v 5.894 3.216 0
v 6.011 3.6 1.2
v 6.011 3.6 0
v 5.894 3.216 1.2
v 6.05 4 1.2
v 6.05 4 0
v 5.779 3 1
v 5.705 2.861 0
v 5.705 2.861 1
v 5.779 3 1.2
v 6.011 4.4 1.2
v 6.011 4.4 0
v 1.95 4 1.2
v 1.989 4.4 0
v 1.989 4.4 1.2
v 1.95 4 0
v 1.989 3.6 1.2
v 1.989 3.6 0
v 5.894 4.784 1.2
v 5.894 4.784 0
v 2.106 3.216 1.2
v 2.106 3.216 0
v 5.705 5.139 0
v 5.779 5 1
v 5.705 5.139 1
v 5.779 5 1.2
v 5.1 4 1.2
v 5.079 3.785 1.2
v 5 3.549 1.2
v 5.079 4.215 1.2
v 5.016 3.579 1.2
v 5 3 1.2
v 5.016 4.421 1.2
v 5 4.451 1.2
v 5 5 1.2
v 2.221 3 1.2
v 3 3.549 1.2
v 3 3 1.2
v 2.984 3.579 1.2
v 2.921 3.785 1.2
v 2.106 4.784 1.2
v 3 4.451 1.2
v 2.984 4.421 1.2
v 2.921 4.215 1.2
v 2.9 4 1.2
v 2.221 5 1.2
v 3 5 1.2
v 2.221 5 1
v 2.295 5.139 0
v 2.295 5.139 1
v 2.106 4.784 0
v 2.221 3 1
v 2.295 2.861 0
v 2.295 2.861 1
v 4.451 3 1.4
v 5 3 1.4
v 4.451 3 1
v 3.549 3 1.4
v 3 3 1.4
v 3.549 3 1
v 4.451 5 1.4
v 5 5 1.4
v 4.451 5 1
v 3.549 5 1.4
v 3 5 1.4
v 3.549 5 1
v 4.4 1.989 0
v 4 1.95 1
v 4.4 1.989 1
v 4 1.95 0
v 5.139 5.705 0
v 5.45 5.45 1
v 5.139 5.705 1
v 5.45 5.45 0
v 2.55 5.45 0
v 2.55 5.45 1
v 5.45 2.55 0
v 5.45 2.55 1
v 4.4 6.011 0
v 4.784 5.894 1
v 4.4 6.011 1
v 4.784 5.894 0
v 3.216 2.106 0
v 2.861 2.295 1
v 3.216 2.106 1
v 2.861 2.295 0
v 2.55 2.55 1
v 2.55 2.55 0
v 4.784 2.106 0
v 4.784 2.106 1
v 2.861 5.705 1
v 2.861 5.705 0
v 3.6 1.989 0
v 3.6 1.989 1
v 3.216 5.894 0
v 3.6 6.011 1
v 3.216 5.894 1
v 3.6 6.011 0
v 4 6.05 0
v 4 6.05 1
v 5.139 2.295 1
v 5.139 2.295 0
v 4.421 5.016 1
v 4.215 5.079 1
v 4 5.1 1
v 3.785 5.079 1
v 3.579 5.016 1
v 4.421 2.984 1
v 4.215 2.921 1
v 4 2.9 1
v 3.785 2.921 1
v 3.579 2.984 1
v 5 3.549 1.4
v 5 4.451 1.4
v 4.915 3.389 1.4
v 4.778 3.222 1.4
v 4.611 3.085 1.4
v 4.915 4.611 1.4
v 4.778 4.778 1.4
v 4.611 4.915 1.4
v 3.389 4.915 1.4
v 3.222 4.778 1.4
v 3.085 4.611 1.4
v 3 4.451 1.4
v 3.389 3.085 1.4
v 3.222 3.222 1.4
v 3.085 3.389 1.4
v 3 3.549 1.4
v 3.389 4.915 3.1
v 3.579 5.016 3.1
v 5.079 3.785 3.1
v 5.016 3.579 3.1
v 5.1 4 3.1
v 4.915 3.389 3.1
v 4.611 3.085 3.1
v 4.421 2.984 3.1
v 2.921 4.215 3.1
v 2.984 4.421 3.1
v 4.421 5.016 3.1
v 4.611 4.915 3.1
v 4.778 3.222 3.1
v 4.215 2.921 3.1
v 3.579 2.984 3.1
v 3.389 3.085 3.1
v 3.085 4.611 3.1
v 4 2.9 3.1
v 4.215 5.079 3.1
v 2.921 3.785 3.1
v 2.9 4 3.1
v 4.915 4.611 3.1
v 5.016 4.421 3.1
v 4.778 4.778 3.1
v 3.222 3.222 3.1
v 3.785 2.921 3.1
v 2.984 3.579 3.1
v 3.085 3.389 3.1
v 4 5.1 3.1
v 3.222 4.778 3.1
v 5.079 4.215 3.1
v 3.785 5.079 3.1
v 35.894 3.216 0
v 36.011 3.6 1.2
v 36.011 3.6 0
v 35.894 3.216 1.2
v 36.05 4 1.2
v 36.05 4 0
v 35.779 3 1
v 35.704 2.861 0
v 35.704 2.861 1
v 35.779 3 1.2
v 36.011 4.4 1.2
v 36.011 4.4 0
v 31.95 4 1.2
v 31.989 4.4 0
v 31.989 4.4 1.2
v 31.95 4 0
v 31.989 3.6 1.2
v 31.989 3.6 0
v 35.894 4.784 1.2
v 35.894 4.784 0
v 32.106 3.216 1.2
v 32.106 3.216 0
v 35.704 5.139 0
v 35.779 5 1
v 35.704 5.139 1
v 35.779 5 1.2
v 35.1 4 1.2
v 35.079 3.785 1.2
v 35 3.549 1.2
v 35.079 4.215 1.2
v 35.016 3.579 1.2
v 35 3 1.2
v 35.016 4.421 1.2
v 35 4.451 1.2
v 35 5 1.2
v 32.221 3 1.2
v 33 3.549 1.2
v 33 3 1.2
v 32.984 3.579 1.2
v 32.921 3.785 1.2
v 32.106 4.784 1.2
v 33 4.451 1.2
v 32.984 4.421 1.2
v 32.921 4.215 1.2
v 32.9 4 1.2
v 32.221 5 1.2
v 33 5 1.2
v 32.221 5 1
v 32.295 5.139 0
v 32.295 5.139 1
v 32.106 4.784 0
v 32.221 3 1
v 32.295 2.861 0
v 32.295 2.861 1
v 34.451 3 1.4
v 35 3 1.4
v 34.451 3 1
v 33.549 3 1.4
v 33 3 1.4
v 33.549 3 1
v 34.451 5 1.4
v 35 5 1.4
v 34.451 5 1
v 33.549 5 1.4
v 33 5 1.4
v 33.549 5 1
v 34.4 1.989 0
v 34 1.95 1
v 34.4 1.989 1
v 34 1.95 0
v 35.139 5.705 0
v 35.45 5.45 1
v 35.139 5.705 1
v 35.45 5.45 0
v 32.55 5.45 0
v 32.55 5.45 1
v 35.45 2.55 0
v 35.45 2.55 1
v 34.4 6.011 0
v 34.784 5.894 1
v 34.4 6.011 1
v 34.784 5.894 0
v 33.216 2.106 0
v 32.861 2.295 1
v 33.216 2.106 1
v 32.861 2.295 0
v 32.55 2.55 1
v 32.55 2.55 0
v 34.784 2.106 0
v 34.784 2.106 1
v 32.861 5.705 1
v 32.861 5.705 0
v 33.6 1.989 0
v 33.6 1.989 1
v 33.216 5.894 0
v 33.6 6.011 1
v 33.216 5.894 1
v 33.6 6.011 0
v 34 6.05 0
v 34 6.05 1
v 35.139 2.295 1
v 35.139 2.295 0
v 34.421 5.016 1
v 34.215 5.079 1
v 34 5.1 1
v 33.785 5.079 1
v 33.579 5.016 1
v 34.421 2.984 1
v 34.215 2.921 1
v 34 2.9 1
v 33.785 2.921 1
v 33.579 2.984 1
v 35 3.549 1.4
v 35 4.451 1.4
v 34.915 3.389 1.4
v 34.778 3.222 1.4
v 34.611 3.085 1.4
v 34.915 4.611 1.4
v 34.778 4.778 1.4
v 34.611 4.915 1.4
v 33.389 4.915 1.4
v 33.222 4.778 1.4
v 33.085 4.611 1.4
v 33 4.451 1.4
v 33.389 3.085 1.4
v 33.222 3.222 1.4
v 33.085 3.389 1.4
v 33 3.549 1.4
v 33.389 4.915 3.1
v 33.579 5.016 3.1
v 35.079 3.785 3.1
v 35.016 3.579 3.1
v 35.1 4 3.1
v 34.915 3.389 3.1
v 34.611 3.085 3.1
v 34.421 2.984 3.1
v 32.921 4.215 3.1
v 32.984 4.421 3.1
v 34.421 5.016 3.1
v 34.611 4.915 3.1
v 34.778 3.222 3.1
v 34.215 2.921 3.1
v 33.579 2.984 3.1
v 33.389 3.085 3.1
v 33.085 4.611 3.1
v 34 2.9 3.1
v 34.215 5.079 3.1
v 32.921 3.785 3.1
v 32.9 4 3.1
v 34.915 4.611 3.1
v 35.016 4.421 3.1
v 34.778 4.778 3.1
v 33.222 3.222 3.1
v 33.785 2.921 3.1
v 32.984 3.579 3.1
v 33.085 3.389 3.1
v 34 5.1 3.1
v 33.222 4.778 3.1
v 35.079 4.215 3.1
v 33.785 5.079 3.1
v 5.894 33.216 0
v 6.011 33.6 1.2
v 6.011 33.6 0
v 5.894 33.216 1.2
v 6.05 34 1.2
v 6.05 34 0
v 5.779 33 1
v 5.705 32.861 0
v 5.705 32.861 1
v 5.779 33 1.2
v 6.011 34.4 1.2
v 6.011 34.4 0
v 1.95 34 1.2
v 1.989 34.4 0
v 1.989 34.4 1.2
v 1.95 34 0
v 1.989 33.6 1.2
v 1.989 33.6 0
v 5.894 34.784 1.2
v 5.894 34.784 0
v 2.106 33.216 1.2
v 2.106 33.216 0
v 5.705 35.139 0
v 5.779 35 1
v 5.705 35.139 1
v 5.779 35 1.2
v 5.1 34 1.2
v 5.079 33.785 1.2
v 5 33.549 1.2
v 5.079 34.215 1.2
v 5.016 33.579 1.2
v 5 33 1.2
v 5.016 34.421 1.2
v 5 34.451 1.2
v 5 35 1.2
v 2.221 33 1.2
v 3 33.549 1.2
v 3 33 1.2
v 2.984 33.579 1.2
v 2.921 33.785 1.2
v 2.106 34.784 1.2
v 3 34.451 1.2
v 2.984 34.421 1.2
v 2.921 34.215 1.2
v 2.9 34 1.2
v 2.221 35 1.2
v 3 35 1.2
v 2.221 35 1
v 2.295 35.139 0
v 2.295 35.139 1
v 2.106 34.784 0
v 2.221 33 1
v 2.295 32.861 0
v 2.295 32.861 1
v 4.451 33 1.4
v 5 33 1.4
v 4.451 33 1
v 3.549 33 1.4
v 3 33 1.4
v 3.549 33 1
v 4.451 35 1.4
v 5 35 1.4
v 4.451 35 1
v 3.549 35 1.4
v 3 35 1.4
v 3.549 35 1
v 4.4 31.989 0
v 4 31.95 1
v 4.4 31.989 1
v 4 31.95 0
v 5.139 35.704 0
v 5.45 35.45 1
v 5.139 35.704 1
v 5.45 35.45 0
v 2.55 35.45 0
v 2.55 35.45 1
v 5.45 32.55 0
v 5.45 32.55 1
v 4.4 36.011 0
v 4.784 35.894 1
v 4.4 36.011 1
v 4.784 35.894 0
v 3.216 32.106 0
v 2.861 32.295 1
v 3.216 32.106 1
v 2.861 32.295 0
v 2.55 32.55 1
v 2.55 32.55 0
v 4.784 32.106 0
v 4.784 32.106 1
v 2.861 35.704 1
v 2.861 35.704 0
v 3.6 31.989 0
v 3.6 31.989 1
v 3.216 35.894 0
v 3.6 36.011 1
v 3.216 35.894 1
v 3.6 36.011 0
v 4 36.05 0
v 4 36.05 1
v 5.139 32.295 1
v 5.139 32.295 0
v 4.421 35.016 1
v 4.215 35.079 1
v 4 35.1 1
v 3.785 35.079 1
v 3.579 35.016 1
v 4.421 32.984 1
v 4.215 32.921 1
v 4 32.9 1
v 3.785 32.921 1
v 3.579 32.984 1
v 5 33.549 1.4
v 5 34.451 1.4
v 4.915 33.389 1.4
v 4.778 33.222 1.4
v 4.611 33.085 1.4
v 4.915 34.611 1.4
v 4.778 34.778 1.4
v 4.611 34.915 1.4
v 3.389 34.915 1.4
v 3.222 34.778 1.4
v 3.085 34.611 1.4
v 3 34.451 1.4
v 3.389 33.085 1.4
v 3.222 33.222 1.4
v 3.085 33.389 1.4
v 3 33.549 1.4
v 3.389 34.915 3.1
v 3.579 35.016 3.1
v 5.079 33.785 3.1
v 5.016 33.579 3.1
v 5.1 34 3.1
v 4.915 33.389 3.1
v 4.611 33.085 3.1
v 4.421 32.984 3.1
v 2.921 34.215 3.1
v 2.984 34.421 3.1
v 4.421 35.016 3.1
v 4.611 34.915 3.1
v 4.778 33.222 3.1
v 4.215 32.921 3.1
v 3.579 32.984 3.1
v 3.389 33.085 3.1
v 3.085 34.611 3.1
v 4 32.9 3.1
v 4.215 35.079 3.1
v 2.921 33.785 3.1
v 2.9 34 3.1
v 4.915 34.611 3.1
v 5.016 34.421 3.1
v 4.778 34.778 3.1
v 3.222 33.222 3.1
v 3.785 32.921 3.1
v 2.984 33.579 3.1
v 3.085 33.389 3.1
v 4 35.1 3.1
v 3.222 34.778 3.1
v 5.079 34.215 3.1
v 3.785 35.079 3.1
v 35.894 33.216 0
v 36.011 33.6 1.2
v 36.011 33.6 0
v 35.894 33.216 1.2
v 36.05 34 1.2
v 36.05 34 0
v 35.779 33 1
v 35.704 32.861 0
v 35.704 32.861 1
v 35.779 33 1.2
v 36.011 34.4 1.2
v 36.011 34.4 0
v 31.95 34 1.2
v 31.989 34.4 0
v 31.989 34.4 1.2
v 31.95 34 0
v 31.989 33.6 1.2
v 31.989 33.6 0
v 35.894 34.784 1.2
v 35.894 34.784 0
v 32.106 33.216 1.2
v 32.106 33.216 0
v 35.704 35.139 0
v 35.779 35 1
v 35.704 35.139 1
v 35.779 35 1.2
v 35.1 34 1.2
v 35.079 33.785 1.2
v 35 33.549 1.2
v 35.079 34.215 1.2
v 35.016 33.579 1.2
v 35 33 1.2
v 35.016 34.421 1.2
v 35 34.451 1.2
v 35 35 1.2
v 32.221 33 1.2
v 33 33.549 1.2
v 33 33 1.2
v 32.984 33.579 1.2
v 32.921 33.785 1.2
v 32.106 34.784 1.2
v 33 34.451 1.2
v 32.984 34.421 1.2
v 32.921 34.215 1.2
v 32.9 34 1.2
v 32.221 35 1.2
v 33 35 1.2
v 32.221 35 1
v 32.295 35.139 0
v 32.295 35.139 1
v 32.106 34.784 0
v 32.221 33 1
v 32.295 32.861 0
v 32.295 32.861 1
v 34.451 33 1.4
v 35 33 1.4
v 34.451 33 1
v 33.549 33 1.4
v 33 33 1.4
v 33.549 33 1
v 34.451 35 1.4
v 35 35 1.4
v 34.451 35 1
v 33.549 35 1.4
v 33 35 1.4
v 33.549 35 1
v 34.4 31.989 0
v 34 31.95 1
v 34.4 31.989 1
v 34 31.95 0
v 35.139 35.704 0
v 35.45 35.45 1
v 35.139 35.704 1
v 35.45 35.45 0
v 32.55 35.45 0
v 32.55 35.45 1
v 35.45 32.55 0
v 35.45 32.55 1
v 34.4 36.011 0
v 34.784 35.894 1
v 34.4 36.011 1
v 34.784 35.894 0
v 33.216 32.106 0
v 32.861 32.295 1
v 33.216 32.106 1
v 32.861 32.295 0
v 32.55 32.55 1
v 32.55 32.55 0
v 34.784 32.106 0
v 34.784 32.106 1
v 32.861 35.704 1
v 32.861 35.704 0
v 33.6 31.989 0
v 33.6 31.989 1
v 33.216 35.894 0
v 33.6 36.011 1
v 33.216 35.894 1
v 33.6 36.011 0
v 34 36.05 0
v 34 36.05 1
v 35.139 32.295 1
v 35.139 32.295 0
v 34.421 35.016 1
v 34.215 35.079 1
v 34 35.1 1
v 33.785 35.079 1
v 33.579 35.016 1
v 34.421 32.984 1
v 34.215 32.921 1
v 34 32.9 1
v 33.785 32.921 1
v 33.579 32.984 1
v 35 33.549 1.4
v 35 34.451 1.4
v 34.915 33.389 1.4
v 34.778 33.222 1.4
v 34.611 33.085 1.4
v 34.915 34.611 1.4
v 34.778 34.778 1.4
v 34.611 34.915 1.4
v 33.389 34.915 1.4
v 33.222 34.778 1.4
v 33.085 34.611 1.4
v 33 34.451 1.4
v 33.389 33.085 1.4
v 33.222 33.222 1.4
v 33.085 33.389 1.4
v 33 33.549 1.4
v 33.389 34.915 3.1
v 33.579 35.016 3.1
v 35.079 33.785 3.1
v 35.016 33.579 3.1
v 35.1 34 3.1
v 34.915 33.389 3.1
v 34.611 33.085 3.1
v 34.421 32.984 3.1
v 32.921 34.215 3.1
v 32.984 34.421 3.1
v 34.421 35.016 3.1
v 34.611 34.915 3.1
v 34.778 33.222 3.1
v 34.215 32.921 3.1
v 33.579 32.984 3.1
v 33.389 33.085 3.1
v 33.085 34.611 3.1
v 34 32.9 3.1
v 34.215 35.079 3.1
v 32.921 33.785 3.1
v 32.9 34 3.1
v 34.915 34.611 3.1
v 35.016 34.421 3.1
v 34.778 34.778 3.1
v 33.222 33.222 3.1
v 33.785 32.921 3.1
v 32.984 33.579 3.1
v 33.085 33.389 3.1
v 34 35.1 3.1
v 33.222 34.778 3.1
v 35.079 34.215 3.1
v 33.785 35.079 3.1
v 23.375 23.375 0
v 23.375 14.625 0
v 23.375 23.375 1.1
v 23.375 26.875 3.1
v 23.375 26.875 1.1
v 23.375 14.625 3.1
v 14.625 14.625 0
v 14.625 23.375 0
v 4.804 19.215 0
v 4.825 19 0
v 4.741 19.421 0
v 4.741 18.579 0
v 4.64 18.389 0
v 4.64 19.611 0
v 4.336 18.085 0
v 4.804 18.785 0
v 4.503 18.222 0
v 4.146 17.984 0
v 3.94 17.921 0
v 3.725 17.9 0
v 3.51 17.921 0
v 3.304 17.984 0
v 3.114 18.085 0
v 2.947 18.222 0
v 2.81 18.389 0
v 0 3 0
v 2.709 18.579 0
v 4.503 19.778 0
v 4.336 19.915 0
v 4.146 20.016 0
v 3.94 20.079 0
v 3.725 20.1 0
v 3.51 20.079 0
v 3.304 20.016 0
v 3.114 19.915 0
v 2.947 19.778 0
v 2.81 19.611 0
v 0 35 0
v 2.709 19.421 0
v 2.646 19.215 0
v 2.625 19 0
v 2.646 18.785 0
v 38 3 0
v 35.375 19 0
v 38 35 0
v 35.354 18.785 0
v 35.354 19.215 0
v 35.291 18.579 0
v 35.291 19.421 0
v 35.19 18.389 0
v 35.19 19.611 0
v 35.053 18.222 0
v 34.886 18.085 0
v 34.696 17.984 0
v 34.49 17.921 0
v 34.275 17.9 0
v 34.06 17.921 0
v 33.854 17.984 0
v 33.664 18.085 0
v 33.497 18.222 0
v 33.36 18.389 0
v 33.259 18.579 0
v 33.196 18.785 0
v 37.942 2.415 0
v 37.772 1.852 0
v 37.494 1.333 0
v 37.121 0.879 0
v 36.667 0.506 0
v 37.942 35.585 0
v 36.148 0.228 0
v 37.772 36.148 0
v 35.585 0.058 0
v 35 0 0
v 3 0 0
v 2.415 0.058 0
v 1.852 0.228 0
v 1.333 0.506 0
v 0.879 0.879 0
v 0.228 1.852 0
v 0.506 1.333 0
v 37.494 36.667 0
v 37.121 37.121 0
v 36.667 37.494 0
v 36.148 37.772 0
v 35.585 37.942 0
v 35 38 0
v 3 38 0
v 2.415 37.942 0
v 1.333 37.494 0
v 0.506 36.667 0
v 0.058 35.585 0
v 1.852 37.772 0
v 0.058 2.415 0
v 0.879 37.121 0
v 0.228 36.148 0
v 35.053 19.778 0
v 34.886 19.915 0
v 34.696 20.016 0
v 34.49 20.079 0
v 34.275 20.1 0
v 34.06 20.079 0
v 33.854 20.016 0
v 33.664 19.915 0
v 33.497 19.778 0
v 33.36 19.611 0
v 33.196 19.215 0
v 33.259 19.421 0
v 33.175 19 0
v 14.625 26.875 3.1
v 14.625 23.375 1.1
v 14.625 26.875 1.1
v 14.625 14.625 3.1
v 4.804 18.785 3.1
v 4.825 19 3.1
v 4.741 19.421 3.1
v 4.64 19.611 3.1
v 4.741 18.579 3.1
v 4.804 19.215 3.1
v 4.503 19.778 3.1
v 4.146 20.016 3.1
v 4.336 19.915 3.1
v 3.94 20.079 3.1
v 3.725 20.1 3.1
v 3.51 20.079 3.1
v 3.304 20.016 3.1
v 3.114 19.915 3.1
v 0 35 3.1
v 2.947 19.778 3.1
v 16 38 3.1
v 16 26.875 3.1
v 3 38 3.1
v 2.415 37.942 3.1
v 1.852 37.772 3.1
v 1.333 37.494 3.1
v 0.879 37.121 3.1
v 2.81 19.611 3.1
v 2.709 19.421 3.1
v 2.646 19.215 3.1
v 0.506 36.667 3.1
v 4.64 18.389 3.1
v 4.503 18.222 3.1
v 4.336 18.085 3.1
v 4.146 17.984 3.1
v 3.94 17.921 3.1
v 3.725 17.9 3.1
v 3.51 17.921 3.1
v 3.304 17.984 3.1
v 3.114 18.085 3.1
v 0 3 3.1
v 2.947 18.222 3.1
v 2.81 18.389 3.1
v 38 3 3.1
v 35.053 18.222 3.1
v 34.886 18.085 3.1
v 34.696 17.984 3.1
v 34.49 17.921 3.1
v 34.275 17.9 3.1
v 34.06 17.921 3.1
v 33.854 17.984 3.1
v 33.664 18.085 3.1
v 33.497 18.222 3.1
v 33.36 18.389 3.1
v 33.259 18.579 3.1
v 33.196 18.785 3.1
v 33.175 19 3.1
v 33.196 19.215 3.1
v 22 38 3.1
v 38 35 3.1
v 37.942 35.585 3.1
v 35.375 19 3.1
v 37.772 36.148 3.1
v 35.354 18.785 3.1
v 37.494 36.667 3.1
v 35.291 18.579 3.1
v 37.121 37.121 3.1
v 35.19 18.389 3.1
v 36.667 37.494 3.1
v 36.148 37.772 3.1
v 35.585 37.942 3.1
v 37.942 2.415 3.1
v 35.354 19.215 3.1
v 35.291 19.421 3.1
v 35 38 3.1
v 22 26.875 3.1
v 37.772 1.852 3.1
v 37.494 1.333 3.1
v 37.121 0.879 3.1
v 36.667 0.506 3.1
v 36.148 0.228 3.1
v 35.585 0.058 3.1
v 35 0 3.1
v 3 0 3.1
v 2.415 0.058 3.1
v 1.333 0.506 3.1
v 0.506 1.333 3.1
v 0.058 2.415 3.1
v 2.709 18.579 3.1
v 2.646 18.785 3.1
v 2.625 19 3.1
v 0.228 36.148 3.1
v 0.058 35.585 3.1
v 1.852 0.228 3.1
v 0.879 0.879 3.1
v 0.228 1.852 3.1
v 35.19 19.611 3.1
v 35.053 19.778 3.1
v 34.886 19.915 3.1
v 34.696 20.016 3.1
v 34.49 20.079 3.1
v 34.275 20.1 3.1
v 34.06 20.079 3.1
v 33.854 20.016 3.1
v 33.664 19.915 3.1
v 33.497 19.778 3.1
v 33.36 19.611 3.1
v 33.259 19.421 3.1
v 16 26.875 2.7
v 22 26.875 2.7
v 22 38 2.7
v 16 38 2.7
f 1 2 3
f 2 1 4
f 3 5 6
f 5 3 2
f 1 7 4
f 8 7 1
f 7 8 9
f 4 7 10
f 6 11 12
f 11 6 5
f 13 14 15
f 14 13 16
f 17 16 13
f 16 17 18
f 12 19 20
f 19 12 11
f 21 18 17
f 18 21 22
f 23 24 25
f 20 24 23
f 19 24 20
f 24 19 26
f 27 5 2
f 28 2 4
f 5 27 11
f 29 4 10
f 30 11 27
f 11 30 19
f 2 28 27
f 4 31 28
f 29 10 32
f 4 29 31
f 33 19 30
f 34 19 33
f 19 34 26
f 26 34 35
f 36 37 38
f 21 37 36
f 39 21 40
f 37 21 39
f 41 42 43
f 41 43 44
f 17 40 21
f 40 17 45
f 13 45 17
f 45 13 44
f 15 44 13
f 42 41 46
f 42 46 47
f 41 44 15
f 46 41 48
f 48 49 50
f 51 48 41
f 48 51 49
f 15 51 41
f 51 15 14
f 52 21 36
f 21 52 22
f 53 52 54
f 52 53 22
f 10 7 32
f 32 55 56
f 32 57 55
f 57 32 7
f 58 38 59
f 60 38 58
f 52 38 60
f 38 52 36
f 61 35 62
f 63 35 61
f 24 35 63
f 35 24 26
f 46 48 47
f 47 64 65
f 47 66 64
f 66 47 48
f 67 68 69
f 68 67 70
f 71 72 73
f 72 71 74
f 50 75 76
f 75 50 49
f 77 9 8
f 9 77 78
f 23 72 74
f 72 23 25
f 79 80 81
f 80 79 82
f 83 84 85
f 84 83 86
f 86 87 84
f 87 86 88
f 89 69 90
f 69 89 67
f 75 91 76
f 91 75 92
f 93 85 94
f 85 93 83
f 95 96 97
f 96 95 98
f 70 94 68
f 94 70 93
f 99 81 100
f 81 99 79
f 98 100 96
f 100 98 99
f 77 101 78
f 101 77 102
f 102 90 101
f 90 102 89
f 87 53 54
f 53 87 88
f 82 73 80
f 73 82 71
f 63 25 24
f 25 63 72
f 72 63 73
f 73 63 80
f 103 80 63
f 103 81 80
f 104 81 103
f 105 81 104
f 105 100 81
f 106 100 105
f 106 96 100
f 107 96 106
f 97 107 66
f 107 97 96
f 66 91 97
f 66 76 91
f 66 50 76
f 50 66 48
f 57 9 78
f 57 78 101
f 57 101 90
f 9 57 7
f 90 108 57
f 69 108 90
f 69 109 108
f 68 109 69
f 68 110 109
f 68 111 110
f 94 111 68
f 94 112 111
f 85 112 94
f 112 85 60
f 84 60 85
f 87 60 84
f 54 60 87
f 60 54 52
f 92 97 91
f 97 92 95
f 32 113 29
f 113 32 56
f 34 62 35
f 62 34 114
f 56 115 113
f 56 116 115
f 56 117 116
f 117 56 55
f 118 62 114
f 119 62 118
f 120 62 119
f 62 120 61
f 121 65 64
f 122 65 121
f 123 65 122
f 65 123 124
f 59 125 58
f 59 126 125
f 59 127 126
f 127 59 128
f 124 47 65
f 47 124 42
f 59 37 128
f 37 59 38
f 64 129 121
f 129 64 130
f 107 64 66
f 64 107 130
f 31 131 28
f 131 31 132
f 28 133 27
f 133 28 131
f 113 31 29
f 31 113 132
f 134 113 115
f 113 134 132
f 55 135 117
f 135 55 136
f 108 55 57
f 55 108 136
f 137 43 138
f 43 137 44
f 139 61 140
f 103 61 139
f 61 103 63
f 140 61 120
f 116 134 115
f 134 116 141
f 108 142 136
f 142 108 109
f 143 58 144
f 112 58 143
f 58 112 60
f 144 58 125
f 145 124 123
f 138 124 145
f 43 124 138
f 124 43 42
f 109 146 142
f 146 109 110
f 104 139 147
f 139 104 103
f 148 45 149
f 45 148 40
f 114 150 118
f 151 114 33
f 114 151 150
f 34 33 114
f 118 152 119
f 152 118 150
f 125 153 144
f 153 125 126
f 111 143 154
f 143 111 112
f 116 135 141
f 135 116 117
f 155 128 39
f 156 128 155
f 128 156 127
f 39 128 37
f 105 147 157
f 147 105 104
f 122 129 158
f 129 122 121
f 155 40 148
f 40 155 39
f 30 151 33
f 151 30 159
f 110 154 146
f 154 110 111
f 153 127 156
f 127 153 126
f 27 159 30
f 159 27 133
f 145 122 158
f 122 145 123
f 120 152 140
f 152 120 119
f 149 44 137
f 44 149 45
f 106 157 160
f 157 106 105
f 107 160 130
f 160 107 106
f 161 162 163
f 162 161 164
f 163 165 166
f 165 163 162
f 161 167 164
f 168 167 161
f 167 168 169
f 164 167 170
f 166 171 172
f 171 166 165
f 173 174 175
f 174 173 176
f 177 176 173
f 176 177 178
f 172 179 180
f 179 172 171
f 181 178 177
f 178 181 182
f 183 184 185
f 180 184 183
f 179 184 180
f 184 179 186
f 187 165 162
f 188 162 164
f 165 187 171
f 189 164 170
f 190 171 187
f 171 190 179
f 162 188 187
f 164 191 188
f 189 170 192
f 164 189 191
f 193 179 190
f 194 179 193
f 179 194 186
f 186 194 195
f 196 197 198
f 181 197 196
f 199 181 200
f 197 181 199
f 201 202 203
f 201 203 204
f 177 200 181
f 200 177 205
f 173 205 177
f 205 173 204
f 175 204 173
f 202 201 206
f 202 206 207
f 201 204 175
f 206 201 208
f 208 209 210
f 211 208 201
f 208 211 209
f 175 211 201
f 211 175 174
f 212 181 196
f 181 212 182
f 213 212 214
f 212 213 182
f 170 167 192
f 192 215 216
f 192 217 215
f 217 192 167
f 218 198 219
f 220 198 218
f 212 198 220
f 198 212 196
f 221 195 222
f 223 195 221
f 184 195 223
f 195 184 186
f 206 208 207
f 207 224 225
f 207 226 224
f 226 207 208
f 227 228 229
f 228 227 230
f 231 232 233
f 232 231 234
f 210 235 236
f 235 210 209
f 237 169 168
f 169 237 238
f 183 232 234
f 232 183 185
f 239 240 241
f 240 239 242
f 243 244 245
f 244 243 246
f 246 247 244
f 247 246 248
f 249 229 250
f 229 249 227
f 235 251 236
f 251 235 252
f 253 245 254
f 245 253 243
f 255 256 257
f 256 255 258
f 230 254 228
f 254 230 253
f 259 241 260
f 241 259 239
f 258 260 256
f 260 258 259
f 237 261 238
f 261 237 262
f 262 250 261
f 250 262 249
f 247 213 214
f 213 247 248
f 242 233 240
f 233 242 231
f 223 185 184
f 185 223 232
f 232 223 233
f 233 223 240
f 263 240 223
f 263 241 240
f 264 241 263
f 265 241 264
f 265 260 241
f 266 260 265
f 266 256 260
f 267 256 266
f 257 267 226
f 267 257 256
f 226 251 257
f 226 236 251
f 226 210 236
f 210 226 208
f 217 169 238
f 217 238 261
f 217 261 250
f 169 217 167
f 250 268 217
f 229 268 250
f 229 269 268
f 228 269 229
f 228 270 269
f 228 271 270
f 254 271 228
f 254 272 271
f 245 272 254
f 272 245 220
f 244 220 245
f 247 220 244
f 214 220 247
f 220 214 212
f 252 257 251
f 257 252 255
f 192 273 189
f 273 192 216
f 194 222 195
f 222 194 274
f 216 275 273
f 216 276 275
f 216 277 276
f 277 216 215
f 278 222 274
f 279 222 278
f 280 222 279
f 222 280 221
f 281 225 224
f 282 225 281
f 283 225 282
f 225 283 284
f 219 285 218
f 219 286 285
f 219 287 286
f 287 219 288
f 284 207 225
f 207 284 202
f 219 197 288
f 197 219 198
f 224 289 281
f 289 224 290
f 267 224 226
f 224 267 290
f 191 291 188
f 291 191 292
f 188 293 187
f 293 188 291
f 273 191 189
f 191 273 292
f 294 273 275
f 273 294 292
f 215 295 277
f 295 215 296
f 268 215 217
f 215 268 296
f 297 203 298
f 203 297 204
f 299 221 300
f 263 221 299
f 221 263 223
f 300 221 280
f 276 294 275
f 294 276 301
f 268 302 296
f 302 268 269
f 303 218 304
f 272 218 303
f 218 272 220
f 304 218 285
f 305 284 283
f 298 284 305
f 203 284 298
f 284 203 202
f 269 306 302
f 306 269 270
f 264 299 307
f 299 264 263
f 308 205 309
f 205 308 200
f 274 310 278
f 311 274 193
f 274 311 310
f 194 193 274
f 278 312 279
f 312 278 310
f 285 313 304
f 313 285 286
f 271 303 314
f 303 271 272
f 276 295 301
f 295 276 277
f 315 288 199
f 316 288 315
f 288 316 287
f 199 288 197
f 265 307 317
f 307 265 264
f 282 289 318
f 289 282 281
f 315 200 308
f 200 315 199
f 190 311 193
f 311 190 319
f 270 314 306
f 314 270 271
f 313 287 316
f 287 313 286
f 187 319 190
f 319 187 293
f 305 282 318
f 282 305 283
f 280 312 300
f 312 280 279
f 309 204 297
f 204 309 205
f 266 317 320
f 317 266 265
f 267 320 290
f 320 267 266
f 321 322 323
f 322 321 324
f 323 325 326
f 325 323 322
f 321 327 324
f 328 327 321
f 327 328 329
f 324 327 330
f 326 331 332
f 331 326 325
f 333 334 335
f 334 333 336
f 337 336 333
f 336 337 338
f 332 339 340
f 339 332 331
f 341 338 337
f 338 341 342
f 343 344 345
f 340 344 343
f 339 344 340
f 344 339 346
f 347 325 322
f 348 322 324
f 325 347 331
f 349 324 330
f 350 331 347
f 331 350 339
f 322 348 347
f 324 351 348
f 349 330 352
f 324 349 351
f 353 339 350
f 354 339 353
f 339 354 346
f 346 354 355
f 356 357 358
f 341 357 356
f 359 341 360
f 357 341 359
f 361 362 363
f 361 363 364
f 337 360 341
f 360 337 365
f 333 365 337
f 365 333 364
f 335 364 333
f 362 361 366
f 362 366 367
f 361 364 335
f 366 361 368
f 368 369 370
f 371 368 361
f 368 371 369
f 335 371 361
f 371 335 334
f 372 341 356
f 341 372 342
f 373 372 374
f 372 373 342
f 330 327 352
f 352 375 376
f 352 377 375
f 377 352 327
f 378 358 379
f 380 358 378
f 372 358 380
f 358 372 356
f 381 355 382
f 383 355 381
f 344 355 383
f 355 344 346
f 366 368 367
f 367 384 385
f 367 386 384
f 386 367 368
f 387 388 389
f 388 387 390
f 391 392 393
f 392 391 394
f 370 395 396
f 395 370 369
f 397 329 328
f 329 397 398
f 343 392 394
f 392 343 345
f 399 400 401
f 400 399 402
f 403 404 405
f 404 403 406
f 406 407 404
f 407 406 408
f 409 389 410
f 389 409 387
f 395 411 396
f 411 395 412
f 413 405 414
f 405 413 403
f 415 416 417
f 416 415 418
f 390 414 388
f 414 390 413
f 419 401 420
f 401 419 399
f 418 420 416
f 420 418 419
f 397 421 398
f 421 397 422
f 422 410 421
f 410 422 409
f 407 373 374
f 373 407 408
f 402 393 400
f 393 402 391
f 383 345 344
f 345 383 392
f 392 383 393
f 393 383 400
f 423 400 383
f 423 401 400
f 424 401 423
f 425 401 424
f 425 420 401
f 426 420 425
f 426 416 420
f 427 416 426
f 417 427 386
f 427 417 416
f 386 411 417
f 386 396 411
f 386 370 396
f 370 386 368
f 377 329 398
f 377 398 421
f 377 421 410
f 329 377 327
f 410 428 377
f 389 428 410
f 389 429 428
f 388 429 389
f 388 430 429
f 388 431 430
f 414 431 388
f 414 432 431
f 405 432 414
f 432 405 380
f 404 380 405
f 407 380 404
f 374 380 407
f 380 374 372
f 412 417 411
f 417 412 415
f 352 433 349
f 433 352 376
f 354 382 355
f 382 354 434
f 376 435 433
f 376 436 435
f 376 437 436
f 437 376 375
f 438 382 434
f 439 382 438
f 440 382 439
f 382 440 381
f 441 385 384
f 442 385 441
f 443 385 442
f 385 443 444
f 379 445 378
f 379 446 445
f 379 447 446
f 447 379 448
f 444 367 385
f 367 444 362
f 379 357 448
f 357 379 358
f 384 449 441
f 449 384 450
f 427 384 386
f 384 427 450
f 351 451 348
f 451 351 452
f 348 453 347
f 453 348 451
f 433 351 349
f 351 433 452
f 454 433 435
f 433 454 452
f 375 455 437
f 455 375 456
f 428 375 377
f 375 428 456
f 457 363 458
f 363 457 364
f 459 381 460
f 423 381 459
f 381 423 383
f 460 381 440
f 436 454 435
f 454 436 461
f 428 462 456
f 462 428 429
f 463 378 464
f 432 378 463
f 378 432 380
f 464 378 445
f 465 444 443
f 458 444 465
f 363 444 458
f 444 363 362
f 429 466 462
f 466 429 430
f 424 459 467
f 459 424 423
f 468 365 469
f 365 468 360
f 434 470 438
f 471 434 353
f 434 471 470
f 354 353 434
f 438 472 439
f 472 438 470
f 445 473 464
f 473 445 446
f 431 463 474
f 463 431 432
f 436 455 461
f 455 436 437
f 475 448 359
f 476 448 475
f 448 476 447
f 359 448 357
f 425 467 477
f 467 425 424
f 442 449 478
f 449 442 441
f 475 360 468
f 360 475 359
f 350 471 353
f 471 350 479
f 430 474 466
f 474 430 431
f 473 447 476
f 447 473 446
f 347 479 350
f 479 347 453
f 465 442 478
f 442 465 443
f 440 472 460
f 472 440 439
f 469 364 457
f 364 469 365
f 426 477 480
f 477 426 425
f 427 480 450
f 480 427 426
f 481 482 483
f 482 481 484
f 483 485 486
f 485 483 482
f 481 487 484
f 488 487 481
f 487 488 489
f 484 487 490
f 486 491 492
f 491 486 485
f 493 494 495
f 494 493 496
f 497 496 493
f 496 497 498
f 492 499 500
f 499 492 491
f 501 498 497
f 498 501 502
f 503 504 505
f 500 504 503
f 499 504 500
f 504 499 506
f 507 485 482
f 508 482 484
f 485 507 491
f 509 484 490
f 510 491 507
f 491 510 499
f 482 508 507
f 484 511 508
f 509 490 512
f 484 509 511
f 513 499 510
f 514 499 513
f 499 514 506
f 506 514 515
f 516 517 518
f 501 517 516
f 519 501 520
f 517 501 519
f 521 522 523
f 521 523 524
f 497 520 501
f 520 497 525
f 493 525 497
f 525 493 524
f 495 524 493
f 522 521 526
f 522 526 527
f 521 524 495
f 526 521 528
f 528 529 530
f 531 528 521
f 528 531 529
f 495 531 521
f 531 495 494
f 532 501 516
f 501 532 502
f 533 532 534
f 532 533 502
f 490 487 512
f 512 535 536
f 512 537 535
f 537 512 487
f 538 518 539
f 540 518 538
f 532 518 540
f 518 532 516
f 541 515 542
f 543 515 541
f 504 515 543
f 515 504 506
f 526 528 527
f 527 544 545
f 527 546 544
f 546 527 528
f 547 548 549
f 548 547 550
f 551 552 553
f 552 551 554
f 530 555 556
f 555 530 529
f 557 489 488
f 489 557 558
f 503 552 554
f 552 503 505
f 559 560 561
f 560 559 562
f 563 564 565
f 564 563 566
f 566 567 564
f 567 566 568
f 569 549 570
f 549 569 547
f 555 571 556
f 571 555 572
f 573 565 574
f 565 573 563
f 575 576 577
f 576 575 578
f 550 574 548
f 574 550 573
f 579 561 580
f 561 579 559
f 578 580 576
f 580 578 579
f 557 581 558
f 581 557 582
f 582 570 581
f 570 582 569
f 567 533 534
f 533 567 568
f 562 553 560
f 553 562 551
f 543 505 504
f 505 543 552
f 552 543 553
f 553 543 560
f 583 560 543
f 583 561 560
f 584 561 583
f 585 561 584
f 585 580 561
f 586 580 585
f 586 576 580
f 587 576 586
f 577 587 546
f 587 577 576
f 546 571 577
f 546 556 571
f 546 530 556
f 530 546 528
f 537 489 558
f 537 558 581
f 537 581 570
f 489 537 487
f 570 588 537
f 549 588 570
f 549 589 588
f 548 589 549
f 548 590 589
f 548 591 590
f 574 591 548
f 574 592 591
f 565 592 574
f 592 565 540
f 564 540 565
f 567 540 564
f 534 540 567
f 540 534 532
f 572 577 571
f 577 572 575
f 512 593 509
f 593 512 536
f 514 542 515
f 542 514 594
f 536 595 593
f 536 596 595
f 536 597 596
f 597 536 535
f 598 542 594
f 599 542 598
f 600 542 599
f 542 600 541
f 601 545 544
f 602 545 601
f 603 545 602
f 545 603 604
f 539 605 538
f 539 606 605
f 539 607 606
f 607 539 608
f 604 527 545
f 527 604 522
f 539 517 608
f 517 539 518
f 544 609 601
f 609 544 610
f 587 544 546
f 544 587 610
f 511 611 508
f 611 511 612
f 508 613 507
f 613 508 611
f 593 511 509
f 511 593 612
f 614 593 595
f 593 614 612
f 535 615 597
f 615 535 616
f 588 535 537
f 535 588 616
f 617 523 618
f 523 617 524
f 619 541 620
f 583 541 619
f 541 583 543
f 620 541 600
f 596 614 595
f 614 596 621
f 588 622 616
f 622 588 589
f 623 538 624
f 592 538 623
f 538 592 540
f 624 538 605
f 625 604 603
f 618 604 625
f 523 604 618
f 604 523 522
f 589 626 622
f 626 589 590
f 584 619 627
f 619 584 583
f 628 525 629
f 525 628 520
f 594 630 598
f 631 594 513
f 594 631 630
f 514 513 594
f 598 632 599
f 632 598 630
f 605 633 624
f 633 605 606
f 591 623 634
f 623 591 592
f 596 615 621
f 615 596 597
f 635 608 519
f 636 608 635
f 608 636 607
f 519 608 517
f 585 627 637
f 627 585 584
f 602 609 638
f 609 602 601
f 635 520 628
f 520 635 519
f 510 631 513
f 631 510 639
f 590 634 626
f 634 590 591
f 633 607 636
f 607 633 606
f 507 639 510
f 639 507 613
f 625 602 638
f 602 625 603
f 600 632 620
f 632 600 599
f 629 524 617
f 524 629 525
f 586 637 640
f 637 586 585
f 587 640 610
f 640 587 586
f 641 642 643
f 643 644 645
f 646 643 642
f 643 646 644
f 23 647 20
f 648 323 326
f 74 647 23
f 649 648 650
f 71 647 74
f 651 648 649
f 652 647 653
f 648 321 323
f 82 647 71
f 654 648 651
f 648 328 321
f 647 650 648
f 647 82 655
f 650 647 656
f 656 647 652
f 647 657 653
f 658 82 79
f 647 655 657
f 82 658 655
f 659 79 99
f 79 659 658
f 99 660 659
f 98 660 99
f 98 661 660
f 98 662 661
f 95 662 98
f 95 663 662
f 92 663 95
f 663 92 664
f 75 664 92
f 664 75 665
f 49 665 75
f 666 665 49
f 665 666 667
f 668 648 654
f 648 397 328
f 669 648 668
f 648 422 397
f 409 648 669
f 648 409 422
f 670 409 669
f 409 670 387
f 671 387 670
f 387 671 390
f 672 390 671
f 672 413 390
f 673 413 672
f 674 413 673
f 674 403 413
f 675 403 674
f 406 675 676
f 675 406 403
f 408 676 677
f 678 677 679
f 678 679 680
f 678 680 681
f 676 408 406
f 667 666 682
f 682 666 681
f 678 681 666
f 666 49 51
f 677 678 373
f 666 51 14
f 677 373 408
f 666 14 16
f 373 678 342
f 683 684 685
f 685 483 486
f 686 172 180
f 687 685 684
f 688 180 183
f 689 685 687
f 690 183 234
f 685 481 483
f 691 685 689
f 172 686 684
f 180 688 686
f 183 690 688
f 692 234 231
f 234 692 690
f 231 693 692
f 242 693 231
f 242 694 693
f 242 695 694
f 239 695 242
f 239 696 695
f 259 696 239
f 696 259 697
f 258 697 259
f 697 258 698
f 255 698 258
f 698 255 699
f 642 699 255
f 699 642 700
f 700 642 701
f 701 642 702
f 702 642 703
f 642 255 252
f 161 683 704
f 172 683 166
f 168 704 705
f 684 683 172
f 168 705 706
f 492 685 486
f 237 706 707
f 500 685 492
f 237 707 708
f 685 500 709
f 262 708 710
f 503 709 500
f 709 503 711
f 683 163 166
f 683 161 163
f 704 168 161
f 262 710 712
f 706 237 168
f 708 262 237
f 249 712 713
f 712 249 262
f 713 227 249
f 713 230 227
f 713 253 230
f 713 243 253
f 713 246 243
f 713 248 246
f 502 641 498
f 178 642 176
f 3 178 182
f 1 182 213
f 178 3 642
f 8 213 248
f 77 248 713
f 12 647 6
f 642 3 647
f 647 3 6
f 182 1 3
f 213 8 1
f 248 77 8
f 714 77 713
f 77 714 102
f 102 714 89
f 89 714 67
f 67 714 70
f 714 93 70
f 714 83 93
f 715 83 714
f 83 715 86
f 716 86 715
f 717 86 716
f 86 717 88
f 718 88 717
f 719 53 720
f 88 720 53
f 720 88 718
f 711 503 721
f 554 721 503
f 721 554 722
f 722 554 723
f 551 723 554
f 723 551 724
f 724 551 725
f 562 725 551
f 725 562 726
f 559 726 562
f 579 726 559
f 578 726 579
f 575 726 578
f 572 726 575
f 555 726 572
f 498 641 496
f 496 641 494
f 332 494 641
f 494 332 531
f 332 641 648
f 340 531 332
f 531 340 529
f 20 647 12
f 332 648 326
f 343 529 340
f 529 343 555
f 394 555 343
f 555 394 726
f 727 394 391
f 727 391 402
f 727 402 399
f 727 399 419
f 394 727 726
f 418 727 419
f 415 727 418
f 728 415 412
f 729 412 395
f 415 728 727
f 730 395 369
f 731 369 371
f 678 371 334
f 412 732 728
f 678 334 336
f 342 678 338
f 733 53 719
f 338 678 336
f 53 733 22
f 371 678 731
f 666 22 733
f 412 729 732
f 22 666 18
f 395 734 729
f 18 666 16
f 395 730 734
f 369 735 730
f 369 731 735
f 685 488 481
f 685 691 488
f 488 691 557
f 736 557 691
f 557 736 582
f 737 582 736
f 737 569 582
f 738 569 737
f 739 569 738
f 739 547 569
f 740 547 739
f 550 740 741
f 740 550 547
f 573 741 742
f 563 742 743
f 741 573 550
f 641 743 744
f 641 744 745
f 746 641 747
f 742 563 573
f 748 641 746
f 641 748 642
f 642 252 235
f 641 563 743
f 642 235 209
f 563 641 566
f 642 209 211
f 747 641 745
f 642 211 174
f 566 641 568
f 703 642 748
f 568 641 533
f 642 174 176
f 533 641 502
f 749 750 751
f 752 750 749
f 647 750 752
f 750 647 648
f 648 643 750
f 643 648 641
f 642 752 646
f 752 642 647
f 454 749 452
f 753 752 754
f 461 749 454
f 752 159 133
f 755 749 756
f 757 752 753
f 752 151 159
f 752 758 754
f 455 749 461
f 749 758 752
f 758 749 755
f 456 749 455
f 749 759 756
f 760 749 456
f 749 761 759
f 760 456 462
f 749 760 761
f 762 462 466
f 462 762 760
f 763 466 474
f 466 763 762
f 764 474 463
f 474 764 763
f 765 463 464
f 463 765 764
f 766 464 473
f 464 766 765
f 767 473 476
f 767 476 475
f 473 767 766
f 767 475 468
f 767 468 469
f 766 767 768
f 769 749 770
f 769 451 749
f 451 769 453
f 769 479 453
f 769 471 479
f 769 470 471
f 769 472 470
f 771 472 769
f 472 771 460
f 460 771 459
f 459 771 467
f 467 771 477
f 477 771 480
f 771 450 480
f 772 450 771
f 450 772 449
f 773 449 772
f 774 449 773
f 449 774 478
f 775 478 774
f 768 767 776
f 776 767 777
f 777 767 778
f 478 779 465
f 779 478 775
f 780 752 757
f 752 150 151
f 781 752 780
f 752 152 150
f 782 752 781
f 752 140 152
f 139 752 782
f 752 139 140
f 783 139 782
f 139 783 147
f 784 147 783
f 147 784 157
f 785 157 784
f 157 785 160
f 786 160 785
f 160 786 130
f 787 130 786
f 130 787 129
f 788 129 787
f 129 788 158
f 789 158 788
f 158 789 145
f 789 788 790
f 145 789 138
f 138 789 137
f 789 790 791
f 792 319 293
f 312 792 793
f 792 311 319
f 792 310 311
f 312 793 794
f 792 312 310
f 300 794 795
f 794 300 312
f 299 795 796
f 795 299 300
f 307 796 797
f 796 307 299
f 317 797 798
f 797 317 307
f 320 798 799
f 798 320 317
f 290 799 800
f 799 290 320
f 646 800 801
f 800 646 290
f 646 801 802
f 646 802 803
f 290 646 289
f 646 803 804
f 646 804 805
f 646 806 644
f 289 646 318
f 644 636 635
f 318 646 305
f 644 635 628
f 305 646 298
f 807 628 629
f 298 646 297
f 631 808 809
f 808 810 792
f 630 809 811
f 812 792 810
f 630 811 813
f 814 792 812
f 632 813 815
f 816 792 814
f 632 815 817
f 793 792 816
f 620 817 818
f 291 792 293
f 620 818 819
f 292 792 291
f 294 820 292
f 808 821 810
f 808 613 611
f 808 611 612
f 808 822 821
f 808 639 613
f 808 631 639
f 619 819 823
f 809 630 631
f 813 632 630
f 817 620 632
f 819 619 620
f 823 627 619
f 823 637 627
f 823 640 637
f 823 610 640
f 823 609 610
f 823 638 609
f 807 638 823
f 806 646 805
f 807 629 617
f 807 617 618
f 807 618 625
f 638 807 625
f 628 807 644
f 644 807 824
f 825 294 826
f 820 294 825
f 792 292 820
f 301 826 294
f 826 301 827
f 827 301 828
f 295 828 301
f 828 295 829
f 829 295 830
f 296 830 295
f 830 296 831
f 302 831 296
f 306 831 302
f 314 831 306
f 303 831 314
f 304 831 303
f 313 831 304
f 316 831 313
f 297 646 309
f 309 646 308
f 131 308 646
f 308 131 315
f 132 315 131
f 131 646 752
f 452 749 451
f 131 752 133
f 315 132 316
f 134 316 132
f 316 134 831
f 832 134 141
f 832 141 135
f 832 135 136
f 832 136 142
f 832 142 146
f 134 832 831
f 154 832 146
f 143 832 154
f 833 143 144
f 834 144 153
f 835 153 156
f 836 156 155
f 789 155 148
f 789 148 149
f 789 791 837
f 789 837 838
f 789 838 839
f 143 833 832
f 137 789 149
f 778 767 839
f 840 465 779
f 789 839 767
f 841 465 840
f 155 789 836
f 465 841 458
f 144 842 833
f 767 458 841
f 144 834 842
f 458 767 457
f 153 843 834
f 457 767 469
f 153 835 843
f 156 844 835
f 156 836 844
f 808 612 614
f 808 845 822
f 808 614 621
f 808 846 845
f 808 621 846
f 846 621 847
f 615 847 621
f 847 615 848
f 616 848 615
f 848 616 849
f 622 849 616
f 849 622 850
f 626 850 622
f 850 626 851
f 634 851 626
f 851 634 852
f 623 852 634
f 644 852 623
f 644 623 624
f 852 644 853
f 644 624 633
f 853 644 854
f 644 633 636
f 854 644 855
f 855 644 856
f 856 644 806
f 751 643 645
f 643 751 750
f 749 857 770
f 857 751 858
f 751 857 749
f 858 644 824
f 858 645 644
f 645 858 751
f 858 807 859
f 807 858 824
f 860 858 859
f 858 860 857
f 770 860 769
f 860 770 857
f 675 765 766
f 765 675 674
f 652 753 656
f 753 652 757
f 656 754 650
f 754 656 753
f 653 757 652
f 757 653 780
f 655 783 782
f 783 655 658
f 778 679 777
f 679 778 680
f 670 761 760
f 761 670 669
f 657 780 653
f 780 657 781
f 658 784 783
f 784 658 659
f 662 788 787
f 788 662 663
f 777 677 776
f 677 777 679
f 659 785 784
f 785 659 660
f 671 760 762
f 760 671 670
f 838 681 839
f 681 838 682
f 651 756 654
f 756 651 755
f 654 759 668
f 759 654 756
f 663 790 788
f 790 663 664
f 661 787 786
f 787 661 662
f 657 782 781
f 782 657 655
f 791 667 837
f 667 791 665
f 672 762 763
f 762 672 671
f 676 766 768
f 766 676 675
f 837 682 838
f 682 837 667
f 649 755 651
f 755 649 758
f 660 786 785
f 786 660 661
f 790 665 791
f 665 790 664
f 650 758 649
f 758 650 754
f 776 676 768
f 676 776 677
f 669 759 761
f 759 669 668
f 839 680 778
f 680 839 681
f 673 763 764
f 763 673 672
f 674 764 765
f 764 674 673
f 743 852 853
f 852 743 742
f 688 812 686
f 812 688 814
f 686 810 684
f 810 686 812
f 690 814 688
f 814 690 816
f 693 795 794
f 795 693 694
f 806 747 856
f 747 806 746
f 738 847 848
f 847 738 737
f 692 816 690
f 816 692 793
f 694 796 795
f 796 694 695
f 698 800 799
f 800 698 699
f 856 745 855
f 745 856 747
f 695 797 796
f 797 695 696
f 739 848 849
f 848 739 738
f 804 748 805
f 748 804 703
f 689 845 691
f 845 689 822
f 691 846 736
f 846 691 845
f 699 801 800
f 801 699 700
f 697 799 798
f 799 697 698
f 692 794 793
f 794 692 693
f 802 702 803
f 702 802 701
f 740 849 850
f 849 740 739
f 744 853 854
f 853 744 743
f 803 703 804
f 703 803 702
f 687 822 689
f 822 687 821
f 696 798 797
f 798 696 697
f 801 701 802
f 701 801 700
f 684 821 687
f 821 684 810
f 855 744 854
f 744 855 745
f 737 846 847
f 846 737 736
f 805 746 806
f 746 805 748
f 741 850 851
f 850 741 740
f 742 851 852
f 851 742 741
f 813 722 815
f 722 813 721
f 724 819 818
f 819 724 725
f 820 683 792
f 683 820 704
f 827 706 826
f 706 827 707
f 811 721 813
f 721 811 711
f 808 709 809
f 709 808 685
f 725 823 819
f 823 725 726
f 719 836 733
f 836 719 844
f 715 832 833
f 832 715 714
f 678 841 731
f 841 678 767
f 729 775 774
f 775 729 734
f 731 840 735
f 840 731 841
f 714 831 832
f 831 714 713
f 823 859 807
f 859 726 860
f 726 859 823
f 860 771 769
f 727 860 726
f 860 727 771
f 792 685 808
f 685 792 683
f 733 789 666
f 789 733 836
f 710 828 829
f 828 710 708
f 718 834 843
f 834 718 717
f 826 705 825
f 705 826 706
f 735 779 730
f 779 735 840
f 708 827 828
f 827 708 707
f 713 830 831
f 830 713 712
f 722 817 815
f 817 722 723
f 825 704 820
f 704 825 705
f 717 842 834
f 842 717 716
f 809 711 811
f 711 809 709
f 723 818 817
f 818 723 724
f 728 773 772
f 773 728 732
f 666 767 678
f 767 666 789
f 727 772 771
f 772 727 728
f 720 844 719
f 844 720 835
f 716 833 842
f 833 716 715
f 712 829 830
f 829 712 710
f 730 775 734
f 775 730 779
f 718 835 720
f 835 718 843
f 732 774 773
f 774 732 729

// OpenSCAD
// Generated by SolidPython 1.0.4 on 2021-01-16 14:00:08


difference() {
	hull() {
		translate(v = [3, 0, 0]) {
			translate(v = [0, 3, 0]) {
				cylinder($fn = 32, center = false, h = 3.1000000000, r = 3);
			}
		}
		translate(v = [35, 0, 0]) {
			translate(v = [0, 3, 0]) {
				cylinder($fn = 32, center = false, h = 3.1000000000, r = 3);
			}
		}
		translate(v = [3, 0, 0]) {
			translate(v = [0, 35, 0]) {
				cylinder($fn = 32, center = false, h = 3.1000000000, r = 3);
			}
		}
		translate(v = [35, 0, 0]) {
			translate(v = [0, 35, 0]) {
				cylinder($fn = 32, center = false, h = 3.1000000000, r = 3);
			}
		}
	}
	translate(v = [4.0000000000, 4.0000000000, 1]) {
		rotate(a = [180, 0, 0]) {
			union() {
				cylinder($fn = 32, d = 4.1000000000, h = 2);
				translate(v = [0, 0, -0.2000000000]) {
					intersection() {
						cylinder($fn = 32, d = 4.1000000000, h = 2);
						translate(v = [0, 0, 1.0000000000]) {
							cube(center = true, size = [7.6000000000, 2, 2]);
						}
					}
				}
				translate(v = [0, 0, -0.4000000000]) {
					translate(v = [0, 0, 1.0000000000]) {
						cube(center = true, size = [2, 2, 2]);
					}
				}
				translate(v = [0, 0, -6.2000000000]) {
					cylinder($fn = 32, d = 2.2000000000, h = 6.2000000000);
				}
			}
		}
	}
	translate(v = [34.0000000000, 4, 1]) {
		rotate(a = [180, 0, 0]) {
			union() {
				cylinder($fn = 32, d = 4.1000000000, h = 2);
				translate(v = [0, 0, -0.2000000000]) {
					intersection() {
						cylinder($fn = 32, d = 4.1000000000, h = 2);
						translate(v = [0, 0, 1.0000000000]) {
							cube(center = true, size = [7.6000000000, 2, 2]);
						}
					}
				}
				translate(v = [0, 0, -0.4000000000]) {
					translate(v = [0, 0, 1.0000000000]) {
						cube(center = true, size = [2, 2, 2]);
					}
				}
				translate(v = [0, 0, -6.2000000000]) {
					cylinder($fn = 32, d = 2.2000000000, h = 6.2000000000);
				}
			}
		}
	}
	translate(v = [4, 34.0000000000, 1]) {
		rotate(a = [180, 0, 0]) {
			union() {
				cylinder($fn = 32, d = 4.1000000000, h = 2);
				translate(v = [0, 0, -0.2000000000]) {
					intersection() {
						cylinder($fn = 32, d = 4.1000000000, h = 2);
						translate(v = [0, 0, 1.0000000000]) {
							cube(center = true, size = [7.6000000000, 2, 2]);
						}
					}
				}
				translate(v = [0, 0, -0.4000000000]) {
					translate(v = [0, 0, 1.0000000000]) {
						cube(center = true, size = [2, 2, 2]);
					}
				}
				translate(v = [0, 0, -6.2000000000]) {
					cylinder($fn = 32, d = 2.2000000000, h = 6.2000000000);
				}
			}
		}
	}
	translate(v = [34.0000000000, 34.0000000000, 1]) {
		rotate(a = [180, 0, 0]) {
			union() {
				cylinder($fn = 32, d = 4.1000000000, h = 2);
				translate(v = [0, 0, -0.2000000000]) {
					intersection() {
						cylinder($fn = 32, d = 4.1000000000, h = 2);
						translate(v = [0, 0, 1.0000000000]) {
							cube(center = true, size = [7.6000000000, 2, 2]);
						}
					}
				}
				translate(v = [0, 0, -0.4000000000]) {
					translate(v = [0, 0, 1.0000000000]) {
						cube(center = true, size = [2, 2, 2]);
					}
				}
				translate(v = [0, 0, -6.2000000000]) {
					cylinder($fn = 32, d = 2.2000000000, h = 6.2000000000);
				}
			}
		}
	}
	translate(v = [14.6250000000, 14.6250000000, 0]) {
		union() {
			cube(center = false, size = [8.7500000000, 8.7500000000, 3.2000000000]);
			translate(v = [0, 8.7500000000, 1.1000000000]) {
				cube(size = [8.7500000000, 3.5000000000, 2]);
			}
			translate(v = [1.3750000000, 10.7500000000, 2.7000000000]) {
				cube(size = [6, 16, 0.5000000000]);
			}
		}
	}
	translate(v = [3.7250000000, 19.0000000000, -1.5500000000]) {
		rotate(a = [180, 0, 0]) {
			union() {
				cylinder($fn = 32, d = 4.1000000000, h = 2);
				translate(v = [0, 0, -0.2000000000]) {
					intersection() {
						cylinder($fn = 32, d = 4.1000000000, h = 2);
						translate(v = [0, 0, 1.0000000000]) {
							cube(center = true, size = [7.6000000000, 2, 2]);
						}
					}
				}
				translate(v = [0, 0, -0.4000000000]) {
					translate(v = [0, 0, 1.0000000000]) {
						cube(center = true, size = [2, 2, 2]);
					}
				}
				translate(v = [0, 0, -6.2000000000]) {
					cylinder($fn = 32, d = 2.2000000000, h = 6.2000000000);
				}
			}
		}
	}
	translate(v = [34.2750000000, 19.0000000000, -1.5500000000]) {
		rotate(a = [180, 0, 0]) {
			union() {
				cylinder($fn = 32, d = 4.1000000000, h = 2);
				translate(v = [0, 0, -0.2000000000]) {
					intersection() {
						cylinder($fn = 32, d = 4.1000000000, h = 2);
						translate(v = [0, 0, 1.0000000000]) {
							cube(center = true, size = [7.6000000000, 2, 2]);
						}
					}
				}
				translate(v = [0, 0, -0.4000000000]) {
					translate(v = [0, 0, 1.0000000000]) {
						cube(center = true, size = [2, 2, 2]);
					}
				}
				translate(v = [0, 0, -6.2000000000]) {
					cylinder($fn = 32, d = 2.2000000000, h = 6.2000000000);
				}
			}
		}
	}
}
/***********************************************
*********      SolidPython code:      **********
************************************************
 
from solid.utils import *
import solid
import os
from screw import MachineScrew,ScrewType
import utils
from const import *

CAMERA_SIDE = 8.6+0.15
ADAPTER_HEIGHT = 3.1

def camera_flex_adapter():
    plate = utils.cube_chamfered([ADAPTER_SIDE,ADAPTER_SIDE,ADAPTER_HEIGHT],center=False,r=3)
    screw_hole = MachineScrew(type=ScrewType.M2_HEX,length=ADAPTER_HEIGHT*2,overhang=True)()
    screw_hole = rotate([180,0,0])(screw_hole)
    plate -= translate((ADAPTER_HOLE_TO_SIDE,ADAPTER_HOLE_TO_SIDE,1))(screw_hole())
    plate -= translate((ADAPTER_SIDE-ADAPTER_HOLE_TO_SIDE,4,1))(screw_hole())
    plate -= translate((4,ADAPTER_SIDE-ADAPTER_HOLE_TO_SIDE,1))(screw_hole())
    plate -= translate((ADAPTER_SIDE-ADAPTER_HOLE_TO_SIDE,ADAPTER_SIDE-ADAPTER_HOLE_TO_SIDE,1))(screw_hole())
    camera_body = solid.cube([CAMERA_SIDE,CAMERA_SIDE,ADAPTER_HEIGHT+0.1],center=False)()
    camera_body += translate((0,CAMERA_SIDE,ADAPTER_HEIGHT-2))(cube([CAMERA_SIDE,3.5,2]))
    camera_body += translate(((CAMERA_SIDE-6)/2,CAMERA_SIDE+2,ADAPTER_HEIGHT-0.4))(cube([6,16,0.5]))
    camera_body = translate((ADAPTER_SIDE/2-CAMERA_SIDE/2,ADAPTER_SIDE/2-CAMERA_SIDE/2,0))(camera_body)
    plate -= camera_body
    plate -= translate((ADAPTER_SIDE/2-CS_LENS_RING_NUT_OFFSET,ADAPTER_SIDE/2,-ADAPTER_HEIGHT/2))(screw_hole)
    plate -= translate((ADAPTER_SIDE/2+CS_LENS_RING_NUT_OFFSET,ADAPTER_SIDE/2,-ADAPTER_HEIGHT/2))(screw_hole)
    return plate

if __name__ == "__main__":
    adapter = camera_flex_adapter()
    filename = 'camera_flex_adapter.scad'
    path = 'stl/adapters'
    os.makedirs(path, exist_ok=True)
    solid.scad_render_to_file(adapter, os.path.join(path,filename)) 
 
************************************************/
